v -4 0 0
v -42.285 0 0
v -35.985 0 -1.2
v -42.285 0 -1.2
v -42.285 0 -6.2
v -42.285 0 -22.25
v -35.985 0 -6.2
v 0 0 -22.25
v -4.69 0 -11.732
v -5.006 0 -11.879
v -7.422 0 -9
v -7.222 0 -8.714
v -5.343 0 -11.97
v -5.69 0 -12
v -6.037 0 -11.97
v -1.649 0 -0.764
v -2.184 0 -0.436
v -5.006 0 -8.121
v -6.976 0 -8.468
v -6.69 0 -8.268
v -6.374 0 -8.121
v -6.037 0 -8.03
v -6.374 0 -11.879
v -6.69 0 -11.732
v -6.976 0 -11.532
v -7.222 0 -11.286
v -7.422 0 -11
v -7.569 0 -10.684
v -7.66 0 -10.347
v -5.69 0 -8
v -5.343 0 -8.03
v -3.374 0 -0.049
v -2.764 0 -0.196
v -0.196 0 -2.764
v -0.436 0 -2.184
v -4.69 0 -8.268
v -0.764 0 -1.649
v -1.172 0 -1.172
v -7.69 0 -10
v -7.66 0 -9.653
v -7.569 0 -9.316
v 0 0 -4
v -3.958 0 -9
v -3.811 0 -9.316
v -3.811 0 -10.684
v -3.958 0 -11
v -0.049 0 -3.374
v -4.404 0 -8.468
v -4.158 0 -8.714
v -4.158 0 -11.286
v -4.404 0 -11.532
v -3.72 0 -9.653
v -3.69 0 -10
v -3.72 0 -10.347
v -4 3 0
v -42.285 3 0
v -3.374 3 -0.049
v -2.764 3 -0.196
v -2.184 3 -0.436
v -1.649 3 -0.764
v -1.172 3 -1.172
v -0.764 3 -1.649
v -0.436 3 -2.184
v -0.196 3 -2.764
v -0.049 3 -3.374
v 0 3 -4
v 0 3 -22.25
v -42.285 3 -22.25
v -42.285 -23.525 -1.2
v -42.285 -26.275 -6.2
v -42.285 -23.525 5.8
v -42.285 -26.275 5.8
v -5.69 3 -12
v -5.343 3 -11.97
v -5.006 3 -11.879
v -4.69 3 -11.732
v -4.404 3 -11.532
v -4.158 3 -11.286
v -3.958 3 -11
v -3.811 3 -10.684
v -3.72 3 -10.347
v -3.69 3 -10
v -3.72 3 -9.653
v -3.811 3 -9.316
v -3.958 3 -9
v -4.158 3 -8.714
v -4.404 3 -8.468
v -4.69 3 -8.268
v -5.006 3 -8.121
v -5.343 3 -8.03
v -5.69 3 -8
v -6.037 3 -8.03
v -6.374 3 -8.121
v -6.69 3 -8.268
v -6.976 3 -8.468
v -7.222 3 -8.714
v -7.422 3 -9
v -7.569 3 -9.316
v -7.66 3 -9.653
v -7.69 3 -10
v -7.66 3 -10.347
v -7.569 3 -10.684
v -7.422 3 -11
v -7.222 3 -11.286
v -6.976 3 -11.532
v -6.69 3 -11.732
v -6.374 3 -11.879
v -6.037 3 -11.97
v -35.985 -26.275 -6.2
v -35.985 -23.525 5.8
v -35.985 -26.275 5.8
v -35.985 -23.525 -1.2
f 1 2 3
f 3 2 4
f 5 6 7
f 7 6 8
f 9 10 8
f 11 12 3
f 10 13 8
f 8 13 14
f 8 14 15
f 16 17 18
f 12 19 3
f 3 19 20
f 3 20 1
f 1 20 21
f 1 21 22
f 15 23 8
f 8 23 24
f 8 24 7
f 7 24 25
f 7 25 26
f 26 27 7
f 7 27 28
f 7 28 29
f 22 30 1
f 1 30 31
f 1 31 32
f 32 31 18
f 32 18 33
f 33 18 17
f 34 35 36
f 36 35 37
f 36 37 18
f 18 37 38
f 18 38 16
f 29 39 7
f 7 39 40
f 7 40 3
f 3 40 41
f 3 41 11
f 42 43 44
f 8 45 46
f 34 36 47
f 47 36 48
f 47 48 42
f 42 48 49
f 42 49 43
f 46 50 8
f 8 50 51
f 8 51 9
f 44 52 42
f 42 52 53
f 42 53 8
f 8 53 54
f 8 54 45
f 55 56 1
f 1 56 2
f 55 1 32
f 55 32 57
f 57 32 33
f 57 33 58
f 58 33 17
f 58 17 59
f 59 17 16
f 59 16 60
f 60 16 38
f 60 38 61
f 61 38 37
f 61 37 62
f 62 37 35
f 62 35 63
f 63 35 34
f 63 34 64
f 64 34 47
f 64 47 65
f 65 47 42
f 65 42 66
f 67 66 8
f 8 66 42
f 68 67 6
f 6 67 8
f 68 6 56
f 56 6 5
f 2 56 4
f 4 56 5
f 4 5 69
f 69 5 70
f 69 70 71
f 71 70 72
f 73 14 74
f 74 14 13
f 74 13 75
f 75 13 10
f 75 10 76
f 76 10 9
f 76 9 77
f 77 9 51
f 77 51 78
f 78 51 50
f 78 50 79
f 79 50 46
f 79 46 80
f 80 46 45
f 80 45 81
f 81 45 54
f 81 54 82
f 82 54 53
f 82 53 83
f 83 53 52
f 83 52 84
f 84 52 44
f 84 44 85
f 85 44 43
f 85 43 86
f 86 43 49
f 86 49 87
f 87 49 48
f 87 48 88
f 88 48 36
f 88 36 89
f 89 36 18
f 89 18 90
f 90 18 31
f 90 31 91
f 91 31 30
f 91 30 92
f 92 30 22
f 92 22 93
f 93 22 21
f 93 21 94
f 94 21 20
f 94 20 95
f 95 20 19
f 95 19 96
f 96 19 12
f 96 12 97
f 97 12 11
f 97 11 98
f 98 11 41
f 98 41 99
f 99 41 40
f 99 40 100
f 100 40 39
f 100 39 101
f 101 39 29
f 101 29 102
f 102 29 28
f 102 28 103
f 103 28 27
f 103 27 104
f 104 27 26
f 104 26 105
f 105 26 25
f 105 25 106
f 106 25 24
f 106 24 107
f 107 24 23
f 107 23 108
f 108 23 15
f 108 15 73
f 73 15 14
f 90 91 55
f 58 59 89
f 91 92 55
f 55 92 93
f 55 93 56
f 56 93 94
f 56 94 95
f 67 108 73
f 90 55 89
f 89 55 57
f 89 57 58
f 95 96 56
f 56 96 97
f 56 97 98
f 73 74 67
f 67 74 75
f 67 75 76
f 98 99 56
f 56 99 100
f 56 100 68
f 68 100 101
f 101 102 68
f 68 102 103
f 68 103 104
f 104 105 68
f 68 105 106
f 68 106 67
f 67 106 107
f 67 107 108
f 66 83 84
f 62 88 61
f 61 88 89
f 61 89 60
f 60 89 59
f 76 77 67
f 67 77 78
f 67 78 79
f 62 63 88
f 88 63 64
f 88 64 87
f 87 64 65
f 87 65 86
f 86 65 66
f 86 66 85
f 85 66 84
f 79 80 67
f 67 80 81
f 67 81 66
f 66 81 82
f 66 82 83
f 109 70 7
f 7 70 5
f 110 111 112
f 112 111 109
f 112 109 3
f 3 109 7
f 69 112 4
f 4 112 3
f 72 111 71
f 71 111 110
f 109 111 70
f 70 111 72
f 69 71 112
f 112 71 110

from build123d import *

# Parameters (mm, degrees)
SKETCH1_R           = 2
SKETCH1_W           = 6.3
SKETCH1_H           = 5
BOSS_EXTRUDE1_DEPTH = 3
SKETCH4_W           = 6.3
SKETCH4_H           = 5
BOSS_EXTRUDE3_DEPTH = 23.525
SKETCH5_W           = 6.3
SKETCH5_H           = 12
BOSS_EXTRUDE4_DEPTH = 2.75


with BuildPart() as part:
    # Sketch1 → Boss-Extrude1 (new body)
    # profile 1 of 2: a face of its own
    with BuildSketch(Plane(origin=(0, 0, 0), x_dir=(1, 0, 0), z_dir=(0, 1, 0))):
        with BuildLine():
            Line((-35.984691362, 0), (-4, 0))
            ThreePointArc((-4, 0), (-1.171572875, 1.171572875), (0, 4))
            Line((0, 4), (0, 20))
            Line((0, 20), (0, 22.25))
            Line((0, 22.25), (-42.284691362, 22.25))
            Line((-42.284691362, 22.25), (-42.284691362, 20))
            Line((-42.284691362, 20), (-42.284691362, 5))
            Line((-42.284691362, 5), (-35.984691362, 5))
            Line((-35.984691362, 5), (-35.984691362, 0))
        make_face()
        with Locations(Location((-5.69, 10, 0), (0, 0, 270))):
            Circle(SKETCH1_R, mode=Mode.SUBTRACT)
    # profile 2 of 2: a face of its own
    with BuildSketch(Plane(origin=(0, 0, 0), x_dir=(1, 0, 0), z_dir=(0, 1, 0))):
        with Locations((-39.134691362, 2.5)):
            Rectangle(SKETCH1_W, SKETCH1_H)
    extrude(amount=BOSS_EXTRUDE1_DEPTH)

    # Sketch4 → Boss-Extrude3 (add)
    with BuildSketch(Plane.XZ):
        with Locations((-39.134691362, -3.7)):
            Rectangle(SKETCH4_W, SKETCH4_H)
    extrude(amount=BOSS_EXTRUDE3_DEPTH)

    # Sketch5 → Boss-Extrude4 (add)
    with BuildSketch(Plane(origin=(0, -23.525, 0), x_dir=(-1, 0, 0), z_dir=(0, -1, 0))):
        with Locations((39.134691362, 0.2)):
            Rectangle(SKETCH5_W, SKETCH5_H)
    extrude(amount=BOSS_EXTRUDE4_DEPTH)


solid = part.part
